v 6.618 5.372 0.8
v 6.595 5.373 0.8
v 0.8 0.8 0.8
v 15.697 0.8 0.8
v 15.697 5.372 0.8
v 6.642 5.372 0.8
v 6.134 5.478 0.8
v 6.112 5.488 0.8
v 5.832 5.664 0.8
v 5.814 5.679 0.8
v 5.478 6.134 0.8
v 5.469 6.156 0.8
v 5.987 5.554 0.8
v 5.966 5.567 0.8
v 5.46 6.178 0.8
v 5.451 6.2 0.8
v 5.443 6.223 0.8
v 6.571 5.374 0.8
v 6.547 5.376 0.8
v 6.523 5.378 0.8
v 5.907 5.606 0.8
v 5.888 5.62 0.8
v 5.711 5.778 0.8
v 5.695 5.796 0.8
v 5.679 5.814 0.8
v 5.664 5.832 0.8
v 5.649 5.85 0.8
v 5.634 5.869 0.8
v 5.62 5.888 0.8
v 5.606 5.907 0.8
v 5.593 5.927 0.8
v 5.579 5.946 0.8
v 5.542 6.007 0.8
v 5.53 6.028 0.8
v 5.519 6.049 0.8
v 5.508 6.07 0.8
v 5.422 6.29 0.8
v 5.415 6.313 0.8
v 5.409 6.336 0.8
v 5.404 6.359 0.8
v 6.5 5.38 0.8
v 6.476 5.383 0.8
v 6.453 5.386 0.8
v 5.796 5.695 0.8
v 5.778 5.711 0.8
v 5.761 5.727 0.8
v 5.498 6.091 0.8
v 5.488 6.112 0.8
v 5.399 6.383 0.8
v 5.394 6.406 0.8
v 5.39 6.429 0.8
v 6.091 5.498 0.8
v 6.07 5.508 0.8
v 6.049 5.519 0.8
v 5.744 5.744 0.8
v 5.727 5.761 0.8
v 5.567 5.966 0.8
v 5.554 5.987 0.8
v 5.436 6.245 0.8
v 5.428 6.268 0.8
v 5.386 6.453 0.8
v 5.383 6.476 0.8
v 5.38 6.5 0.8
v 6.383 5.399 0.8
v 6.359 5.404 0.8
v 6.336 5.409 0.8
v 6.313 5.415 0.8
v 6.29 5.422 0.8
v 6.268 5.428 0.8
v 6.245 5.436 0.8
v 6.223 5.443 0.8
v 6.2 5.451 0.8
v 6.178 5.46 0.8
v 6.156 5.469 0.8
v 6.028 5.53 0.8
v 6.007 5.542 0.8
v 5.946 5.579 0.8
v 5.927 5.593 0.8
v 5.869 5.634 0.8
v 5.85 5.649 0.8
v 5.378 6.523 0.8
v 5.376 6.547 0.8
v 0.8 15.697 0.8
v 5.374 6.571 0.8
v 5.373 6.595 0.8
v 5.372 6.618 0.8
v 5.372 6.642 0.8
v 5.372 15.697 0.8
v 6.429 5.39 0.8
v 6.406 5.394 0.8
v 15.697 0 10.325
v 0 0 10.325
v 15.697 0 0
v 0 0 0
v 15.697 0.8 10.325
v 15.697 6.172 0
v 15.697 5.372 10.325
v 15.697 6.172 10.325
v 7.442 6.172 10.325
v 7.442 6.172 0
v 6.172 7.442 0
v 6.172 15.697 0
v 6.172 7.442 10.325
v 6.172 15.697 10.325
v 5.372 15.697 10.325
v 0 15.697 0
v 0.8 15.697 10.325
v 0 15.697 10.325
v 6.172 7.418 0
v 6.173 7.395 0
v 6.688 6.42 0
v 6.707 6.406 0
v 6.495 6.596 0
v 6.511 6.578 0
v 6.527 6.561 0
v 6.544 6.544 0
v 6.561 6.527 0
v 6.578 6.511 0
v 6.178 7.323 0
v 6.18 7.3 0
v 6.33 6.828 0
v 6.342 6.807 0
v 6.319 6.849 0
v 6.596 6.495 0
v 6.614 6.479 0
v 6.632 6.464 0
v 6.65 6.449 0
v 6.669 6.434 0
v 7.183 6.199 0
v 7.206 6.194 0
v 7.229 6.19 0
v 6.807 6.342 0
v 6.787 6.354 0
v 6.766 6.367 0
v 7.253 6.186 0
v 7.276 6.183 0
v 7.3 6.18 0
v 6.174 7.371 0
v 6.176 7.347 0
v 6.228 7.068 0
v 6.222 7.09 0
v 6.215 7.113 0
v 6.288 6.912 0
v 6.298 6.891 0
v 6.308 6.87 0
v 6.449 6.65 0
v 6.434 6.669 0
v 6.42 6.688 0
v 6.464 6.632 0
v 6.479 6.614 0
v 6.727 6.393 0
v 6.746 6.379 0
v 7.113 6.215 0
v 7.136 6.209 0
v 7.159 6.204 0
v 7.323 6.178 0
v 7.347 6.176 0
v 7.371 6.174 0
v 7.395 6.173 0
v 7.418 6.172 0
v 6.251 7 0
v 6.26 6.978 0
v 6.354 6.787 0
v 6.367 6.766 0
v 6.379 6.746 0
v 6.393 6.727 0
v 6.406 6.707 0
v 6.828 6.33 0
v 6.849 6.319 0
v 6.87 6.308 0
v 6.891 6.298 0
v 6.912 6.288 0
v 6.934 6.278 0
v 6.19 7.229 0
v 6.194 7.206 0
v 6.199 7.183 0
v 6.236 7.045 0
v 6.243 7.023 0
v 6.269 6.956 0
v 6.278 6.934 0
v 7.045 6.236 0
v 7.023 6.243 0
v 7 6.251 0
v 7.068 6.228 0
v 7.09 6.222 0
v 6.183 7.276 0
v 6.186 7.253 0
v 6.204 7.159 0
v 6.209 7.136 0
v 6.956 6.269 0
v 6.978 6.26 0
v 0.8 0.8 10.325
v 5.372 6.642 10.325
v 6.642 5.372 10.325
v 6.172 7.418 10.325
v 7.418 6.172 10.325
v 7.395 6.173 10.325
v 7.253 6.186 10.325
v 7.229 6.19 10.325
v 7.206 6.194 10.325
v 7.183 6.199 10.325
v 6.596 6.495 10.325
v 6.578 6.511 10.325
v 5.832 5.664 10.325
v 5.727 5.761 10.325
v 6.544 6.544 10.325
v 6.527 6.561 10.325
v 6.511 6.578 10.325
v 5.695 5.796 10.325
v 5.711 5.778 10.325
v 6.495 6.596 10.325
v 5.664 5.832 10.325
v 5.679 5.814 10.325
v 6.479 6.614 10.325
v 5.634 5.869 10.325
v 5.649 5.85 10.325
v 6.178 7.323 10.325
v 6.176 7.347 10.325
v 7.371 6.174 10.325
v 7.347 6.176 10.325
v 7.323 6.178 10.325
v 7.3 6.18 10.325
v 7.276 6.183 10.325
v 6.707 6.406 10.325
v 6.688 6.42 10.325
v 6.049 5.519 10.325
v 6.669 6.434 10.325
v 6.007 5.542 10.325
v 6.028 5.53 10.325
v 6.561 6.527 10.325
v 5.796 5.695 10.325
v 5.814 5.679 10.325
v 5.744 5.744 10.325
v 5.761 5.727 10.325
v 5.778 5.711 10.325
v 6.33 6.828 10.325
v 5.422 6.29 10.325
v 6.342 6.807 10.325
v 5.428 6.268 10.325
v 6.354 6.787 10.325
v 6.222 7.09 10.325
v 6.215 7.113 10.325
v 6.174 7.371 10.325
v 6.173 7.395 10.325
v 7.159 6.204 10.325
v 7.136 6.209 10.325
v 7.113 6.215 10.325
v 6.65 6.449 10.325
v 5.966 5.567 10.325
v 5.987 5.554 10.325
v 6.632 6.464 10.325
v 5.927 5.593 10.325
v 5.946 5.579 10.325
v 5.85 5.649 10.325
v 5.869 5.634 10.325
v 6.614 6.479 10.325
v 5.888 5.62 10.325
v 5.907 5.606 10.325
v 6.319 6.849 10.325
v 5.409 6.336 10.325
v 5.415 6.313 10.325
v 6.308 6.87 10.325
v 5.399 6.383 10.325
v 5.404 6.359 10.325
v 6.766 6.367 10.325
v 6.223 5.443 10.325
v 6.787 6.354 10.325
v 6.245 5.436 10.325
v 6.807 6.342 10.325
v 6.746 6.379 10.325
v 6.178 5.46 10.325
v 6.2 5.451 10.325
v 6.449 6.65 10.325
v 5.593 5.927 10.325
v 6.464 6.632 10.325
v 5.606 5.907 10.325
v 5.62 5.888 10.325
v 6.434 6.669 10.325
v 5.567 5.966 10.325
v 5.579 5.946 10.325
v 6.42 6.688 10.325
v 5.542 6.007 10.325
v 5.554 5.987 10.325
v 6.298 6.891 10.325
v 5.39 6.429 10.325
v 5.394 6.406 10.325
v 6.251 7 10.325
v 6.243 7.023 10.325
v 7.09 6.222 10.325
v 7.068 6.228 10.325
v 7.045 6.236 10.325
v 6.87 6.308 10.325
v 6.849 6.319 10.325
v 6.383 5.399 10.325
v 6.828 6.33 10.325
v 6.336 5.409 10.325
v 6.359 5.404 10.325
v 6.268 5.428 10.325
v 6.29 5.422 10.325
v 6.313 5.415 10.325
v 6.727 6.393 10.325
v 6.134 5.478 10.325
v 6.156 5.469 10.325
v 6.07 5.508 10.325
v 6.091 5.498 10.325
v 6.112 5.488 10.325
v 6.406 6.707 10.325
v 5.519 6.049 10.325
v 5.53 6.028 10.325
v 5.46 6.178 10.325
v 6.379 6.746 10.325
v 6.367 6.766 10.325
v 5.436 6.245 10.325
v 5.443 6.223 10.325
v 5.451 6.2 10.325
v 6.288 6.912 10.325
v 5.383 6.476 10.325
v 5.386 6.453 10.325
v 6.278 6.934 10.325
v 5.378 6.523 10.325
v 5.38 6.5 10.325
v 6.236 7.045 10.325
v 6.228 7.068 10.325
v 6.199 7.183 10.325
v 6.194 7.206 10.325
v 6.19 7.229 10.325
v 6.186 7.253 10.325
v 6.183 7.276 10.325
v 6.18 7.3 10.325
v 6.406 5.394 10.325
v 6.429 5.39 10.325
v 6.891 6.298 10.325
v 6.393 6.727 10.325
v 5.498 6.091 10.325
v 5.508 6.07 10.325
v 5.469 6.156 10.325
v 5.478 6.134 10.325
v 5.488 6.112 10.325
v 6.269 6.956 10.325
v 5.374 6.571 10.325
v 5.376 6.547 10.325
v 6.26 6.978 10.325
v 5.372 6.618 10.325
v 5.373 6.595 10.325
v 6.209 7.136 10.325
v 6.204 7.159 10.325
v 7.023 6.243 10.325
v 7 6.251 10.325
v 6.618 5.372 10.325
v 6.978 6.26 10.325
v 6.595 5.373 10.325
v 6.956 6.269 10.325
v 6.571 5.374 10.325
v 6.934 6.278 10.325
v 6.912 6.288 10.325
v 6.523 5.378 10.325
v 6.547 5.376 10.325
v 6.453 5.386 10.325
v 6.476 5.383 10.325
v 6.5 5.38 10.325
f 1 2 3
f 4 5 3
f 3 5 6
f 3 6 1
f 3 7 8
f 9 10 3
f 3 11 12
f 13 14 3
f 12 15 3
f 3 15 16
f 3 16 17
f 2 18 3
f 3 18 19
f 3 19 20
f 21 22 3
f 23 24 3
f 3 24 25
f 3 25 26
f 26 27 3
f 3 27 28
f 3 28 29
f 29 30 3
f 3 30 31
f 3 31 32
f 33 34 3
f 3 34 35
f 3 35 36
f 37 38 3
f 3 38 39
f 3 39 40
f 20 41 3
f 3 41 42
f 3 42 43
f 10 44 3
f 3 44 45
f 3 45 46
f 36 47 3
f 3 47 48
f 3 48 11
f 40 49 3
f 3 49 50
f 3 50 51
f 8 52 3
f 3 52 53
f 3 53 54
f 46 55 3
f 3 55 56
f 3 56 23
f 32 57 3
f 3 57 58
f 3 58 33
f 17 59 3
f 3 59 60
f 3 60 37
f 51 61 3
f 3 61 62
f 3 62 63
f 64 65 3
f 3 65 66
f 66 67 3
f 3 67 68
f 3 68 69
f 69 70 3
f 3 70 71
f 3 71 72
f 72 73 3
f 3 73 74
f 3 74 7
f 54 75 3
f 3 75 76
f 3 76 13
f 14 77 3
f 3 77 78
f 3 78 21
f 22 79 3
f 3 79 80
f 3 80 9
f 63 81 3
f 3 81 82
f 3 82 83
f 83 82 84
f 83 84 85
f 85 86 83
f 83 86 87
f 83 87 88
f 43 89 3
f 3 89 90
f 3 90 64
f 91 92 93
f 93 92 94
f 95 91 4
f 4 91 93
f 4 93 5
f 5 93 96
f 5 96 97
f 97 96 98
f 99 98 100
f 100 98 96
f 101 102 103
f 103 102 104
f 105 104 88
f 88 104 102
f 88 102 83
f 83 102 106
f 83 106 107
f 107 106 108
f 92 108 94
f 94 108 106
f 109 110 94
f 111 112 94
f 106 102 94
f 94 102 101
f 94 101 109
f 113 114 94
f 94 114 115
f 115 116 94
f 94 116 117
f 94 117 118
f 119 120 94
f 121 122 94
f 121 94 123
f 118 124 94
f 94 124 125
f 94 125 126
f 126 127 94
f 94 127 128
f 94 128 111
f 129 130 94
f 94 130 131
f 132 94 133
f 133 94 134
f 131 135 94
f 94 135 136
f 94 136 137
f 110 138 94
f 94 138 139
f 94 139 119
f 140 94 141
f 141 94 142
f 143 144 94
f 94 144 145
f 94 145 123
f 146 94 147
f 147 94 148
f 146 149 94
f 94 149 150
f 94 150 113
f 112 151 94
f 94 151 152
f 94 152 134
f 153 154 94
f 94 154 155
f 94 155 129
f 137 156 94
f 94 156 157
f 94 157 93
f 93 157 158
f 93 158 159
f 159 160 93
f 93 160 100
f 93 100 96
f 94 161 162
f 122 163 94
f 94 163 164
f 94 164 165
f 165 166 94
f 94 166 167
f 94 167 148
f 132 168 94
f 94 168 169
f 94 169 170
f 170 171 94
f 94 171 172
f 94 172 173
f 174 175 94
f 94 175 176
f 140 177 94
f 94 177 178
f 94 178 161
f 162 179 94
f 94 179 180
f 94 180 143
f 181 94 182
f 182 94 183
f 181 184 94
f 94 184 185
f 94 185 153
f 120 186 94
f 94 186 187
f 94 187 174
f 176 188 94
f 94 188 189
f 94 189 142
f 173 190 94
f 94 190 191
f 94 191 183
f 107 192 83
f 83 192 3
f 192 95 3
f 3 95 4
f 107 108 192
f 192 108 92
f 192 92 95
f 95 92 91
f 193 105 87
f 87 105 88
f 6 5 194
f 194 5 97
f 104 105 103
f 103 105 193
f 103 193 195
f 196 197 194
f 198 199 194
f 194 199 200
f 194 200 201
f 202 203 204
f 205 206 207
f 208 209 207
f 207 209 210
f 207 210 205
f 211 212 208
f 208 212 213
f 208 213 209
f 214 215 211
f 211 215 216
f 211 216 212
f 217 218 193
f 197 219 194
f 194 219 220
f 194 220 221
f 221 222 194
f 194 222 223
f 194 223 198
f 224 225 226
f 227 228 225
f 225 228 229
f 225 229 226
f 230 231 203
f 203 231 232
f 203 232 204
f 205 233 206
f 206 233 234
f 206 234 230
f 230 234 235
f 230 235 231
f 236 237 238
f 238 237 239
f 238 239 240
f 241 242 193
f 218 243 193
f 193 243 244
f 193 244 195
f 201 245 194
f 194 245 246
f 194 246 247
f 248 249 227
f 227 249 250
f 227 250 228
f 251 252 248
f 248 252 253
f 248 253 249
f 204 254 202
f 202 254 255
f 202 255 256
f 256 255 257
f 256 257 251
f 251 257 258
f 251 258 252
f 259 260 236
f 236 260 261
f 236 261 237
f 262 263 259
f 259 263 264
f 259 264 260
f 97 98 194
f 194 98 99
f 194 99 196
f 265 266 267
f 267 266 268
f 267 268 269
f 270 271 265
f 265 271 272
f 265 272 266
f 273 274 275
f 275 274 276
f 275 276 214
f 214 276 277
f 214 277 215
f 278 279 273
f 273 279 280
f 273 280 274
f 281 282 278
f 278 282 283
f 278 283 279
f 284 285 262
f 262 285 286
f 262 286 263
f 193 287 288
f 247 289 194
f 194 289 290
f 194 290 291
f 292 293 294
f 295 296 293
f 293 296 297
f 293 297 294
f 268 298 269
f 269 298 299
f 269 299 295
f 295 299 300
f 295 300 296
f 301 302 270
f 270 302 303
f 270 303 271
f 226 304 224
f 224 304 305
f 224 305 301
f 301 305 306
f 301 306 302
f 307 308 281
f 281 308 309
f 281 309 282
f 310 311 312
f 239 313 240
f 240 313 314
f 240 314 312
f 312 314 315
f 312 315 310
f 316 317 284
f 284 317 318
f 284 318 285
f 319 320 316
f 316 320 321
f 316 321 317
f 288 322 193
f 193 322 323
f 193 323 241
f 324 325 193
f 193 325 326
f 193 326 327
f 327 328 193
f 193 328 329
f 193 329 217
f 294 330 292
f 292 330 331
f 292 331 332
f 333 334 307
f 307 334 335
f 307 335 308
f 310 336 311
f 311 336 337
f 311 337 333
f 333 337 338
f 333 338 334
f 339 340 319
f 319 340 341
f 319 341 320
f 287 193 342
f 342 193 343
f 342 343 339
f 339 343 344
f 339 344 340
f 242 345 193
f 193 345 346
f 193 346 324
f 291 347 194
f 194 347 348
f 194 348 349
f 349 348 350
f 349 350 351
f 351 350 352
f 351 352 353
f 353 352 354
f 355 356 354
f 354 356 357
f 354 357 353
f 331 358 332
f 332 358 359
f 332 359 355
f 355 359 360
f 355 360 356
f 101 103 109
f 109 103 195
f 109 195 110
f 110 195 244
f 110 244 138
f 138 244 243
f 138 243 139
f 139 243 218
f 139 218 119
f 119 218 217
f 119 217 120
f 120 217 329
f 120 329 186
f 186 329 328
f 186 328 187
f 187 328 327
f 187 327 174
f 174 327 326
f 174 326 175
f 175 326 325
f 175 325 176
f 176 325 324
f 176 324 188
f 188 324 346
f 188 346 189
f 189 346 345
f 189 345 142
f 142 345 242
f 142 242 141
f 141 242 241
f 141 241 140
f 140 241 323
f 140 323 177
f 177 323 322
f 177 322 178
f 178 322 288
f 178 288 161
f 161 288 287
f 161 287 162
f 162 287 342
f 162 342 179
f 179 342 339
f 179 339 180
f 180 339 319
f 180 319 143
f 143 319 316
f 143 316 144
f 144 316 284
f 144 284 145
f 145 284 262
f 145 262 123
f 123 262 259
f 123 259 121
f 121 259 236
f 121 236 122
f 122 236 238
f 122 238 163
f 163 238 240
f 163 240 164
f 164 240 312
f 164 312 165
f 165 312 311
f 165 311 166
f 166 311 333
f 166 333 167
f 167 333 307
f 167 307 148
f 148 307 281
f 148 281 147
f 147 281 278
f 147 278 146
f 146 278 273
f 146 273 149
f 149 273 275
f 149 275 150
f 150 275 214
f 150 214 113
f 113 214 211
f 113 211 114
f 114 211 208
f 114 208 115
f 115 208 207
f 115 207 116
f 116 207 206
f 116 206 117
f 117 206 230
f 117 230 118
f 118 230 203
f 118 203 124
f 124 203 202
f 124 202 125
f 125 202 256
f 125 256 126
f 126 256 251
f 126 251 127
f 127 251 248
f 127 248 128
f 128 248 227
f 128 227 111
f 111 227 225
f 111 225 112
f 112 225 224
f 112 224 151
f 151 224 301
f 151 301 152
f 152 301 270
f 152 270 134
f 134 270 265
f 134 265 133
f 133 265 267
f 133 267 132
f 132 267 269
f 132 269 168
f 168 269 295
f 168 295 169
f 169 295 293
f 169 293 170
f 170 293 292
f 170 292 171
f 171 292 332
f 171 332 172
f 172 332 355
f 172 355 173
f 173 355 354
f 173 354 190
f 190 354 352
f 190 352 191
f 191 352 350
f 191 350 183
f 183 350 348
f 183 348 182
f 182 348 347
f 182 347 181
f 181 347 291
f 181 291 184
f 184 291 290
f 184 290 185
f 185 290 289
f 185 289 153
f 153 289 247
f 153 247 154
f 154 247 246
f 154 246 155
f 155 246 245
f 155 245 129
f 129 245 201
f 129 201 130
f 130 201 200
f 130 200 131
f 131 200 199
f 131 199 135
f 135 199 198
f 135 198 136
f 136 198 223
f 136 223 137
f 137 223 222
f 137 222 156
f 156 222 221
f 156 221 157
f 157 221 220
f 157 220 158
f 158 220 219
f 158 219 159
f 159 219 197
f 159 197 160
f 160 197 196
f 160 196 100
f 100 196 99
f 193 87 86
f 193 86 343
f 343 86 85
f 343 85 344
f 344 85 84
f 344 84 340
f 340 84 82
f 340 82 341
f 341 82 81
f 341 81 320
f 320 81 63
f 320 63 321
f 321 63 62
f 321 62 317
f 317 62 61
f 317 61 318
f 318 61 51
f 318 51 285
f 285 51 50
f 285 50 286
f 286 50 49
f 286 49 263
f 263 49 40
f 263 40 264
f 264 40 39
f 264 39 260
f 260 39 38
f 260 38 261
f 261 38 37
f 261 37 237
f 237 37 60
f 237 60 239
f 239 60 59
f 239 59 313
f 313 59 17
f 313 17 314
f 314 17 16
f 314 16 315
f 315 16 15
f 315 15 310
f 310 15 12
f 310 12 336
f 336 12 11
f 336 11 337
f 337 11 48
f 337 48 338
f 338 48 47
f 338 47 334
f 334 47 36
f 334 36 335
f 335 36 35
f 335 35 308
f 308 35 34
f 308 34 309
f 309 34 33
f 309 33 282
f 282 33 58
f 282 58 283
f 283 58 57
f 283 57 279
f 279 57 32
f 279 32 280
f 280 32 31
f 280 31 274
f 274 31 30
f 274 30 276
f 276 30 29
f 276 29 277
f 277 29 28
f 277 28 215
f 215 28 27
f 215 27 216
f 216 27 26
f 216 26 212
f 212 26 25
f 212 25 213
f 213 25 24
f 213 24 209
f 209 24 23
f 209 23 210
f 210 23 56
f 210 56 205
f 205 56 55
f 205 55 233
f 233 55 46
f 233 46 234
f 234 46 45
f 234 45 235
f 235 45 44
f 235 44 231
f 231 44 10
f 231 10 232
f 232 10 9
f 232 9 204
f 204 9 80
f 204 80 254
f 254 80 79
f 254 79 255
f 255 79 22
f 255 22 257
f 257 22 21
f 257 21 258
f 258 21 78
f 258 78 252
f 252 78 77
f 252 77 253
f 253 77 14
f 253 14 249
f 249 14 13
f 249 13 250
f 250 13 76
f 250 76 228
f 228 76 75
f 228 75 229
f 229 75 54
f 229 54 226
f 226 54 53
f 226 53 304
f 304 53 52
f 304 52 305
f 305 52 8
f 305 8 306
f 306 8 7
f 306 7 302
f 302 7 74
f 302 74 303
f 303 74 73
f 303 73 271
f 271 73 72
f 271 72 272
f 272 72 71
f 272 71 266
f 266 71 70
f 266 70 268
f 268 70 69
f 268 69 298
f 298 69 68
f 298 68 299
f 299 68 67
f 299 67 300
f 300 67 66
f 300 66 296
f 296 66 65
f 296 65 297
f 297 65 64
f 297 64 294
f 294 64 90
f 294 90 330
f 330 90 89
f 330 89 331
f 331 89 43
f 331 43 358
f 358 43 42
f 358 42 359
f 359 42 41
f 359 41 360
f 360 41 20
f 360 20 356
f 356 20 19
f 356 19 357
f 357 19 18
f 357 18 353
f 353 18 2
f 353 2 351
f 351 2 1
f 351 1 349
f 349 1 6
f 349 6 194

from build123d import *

# Parameters (mm, degrees)
BOSS_EXTRUDE1_DEPTH = 0.8
BOSS_EXTRUDE2_DEPTH = 9.525
FILLET1_R           = 1.27


with BuildPart() as part:
    # Sketch1 → Boss-Extrude1 (new body)
    with BuildSketch(Plane.XY):
        Polygon((0, 0), (0, 15.697000102), (6.172000102, 15.697000102), (6.172000102, 6.172000102), (15.697000102, 6.172000102), (15.697000102, 0), align=None)
    extrude(amount=BOSS_EXTRUDE1_DEPTH)

    # Sketch2 → Boss-Extrude2 (add)
    with BuildSketch(Plane.XY.offset(0.8)):
        Polygon((0.8, 0.8), (15.697000102, 0.8), (15.697000102, 0), (0, 0), (0, 15.697000102), (0.8, 15.697000102), align=None)
        Polygon((15.697000102, 5.372000102), (5.372000102, 5.372000102), (5.372000102, 15.697000102), (6.172000102, 15.697000102), (6.172000102, 6.172000102), (15.697000102, 6.172000102), align=None)
    extrude(amount=BOSS_EXTRUDE2_DEPTH)

    # Fillet1
    fillet1_edges = [part.edges().sort_by_distance(p)[0] for p in [
        (6.172000102, 6.172000102, 5.1625),
        (5.372000102, 5.372000102, 5.5625),
    ]]
    fillet(fillet1_edges, radius=FILLET1_R)


solid = part.part
